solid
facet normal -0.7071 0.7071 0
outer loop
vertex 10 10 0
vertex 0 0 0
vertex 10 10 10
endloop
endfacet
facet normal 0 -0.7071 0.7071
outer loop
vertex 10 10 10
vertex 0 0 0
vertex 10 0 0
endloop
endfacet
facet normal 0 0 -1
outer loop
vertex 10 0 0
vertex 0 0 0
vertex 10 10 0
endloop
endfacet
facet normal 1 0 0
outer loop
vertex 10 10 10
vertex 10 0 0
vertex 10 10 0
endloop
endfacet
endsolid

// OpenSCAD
intersection() {
    cube([10,10,10]);
    rotate([-45,0,0])
        cube([40,40,40]);
    rotate([0,0,-45])
        cube([40,40,40]);
}
